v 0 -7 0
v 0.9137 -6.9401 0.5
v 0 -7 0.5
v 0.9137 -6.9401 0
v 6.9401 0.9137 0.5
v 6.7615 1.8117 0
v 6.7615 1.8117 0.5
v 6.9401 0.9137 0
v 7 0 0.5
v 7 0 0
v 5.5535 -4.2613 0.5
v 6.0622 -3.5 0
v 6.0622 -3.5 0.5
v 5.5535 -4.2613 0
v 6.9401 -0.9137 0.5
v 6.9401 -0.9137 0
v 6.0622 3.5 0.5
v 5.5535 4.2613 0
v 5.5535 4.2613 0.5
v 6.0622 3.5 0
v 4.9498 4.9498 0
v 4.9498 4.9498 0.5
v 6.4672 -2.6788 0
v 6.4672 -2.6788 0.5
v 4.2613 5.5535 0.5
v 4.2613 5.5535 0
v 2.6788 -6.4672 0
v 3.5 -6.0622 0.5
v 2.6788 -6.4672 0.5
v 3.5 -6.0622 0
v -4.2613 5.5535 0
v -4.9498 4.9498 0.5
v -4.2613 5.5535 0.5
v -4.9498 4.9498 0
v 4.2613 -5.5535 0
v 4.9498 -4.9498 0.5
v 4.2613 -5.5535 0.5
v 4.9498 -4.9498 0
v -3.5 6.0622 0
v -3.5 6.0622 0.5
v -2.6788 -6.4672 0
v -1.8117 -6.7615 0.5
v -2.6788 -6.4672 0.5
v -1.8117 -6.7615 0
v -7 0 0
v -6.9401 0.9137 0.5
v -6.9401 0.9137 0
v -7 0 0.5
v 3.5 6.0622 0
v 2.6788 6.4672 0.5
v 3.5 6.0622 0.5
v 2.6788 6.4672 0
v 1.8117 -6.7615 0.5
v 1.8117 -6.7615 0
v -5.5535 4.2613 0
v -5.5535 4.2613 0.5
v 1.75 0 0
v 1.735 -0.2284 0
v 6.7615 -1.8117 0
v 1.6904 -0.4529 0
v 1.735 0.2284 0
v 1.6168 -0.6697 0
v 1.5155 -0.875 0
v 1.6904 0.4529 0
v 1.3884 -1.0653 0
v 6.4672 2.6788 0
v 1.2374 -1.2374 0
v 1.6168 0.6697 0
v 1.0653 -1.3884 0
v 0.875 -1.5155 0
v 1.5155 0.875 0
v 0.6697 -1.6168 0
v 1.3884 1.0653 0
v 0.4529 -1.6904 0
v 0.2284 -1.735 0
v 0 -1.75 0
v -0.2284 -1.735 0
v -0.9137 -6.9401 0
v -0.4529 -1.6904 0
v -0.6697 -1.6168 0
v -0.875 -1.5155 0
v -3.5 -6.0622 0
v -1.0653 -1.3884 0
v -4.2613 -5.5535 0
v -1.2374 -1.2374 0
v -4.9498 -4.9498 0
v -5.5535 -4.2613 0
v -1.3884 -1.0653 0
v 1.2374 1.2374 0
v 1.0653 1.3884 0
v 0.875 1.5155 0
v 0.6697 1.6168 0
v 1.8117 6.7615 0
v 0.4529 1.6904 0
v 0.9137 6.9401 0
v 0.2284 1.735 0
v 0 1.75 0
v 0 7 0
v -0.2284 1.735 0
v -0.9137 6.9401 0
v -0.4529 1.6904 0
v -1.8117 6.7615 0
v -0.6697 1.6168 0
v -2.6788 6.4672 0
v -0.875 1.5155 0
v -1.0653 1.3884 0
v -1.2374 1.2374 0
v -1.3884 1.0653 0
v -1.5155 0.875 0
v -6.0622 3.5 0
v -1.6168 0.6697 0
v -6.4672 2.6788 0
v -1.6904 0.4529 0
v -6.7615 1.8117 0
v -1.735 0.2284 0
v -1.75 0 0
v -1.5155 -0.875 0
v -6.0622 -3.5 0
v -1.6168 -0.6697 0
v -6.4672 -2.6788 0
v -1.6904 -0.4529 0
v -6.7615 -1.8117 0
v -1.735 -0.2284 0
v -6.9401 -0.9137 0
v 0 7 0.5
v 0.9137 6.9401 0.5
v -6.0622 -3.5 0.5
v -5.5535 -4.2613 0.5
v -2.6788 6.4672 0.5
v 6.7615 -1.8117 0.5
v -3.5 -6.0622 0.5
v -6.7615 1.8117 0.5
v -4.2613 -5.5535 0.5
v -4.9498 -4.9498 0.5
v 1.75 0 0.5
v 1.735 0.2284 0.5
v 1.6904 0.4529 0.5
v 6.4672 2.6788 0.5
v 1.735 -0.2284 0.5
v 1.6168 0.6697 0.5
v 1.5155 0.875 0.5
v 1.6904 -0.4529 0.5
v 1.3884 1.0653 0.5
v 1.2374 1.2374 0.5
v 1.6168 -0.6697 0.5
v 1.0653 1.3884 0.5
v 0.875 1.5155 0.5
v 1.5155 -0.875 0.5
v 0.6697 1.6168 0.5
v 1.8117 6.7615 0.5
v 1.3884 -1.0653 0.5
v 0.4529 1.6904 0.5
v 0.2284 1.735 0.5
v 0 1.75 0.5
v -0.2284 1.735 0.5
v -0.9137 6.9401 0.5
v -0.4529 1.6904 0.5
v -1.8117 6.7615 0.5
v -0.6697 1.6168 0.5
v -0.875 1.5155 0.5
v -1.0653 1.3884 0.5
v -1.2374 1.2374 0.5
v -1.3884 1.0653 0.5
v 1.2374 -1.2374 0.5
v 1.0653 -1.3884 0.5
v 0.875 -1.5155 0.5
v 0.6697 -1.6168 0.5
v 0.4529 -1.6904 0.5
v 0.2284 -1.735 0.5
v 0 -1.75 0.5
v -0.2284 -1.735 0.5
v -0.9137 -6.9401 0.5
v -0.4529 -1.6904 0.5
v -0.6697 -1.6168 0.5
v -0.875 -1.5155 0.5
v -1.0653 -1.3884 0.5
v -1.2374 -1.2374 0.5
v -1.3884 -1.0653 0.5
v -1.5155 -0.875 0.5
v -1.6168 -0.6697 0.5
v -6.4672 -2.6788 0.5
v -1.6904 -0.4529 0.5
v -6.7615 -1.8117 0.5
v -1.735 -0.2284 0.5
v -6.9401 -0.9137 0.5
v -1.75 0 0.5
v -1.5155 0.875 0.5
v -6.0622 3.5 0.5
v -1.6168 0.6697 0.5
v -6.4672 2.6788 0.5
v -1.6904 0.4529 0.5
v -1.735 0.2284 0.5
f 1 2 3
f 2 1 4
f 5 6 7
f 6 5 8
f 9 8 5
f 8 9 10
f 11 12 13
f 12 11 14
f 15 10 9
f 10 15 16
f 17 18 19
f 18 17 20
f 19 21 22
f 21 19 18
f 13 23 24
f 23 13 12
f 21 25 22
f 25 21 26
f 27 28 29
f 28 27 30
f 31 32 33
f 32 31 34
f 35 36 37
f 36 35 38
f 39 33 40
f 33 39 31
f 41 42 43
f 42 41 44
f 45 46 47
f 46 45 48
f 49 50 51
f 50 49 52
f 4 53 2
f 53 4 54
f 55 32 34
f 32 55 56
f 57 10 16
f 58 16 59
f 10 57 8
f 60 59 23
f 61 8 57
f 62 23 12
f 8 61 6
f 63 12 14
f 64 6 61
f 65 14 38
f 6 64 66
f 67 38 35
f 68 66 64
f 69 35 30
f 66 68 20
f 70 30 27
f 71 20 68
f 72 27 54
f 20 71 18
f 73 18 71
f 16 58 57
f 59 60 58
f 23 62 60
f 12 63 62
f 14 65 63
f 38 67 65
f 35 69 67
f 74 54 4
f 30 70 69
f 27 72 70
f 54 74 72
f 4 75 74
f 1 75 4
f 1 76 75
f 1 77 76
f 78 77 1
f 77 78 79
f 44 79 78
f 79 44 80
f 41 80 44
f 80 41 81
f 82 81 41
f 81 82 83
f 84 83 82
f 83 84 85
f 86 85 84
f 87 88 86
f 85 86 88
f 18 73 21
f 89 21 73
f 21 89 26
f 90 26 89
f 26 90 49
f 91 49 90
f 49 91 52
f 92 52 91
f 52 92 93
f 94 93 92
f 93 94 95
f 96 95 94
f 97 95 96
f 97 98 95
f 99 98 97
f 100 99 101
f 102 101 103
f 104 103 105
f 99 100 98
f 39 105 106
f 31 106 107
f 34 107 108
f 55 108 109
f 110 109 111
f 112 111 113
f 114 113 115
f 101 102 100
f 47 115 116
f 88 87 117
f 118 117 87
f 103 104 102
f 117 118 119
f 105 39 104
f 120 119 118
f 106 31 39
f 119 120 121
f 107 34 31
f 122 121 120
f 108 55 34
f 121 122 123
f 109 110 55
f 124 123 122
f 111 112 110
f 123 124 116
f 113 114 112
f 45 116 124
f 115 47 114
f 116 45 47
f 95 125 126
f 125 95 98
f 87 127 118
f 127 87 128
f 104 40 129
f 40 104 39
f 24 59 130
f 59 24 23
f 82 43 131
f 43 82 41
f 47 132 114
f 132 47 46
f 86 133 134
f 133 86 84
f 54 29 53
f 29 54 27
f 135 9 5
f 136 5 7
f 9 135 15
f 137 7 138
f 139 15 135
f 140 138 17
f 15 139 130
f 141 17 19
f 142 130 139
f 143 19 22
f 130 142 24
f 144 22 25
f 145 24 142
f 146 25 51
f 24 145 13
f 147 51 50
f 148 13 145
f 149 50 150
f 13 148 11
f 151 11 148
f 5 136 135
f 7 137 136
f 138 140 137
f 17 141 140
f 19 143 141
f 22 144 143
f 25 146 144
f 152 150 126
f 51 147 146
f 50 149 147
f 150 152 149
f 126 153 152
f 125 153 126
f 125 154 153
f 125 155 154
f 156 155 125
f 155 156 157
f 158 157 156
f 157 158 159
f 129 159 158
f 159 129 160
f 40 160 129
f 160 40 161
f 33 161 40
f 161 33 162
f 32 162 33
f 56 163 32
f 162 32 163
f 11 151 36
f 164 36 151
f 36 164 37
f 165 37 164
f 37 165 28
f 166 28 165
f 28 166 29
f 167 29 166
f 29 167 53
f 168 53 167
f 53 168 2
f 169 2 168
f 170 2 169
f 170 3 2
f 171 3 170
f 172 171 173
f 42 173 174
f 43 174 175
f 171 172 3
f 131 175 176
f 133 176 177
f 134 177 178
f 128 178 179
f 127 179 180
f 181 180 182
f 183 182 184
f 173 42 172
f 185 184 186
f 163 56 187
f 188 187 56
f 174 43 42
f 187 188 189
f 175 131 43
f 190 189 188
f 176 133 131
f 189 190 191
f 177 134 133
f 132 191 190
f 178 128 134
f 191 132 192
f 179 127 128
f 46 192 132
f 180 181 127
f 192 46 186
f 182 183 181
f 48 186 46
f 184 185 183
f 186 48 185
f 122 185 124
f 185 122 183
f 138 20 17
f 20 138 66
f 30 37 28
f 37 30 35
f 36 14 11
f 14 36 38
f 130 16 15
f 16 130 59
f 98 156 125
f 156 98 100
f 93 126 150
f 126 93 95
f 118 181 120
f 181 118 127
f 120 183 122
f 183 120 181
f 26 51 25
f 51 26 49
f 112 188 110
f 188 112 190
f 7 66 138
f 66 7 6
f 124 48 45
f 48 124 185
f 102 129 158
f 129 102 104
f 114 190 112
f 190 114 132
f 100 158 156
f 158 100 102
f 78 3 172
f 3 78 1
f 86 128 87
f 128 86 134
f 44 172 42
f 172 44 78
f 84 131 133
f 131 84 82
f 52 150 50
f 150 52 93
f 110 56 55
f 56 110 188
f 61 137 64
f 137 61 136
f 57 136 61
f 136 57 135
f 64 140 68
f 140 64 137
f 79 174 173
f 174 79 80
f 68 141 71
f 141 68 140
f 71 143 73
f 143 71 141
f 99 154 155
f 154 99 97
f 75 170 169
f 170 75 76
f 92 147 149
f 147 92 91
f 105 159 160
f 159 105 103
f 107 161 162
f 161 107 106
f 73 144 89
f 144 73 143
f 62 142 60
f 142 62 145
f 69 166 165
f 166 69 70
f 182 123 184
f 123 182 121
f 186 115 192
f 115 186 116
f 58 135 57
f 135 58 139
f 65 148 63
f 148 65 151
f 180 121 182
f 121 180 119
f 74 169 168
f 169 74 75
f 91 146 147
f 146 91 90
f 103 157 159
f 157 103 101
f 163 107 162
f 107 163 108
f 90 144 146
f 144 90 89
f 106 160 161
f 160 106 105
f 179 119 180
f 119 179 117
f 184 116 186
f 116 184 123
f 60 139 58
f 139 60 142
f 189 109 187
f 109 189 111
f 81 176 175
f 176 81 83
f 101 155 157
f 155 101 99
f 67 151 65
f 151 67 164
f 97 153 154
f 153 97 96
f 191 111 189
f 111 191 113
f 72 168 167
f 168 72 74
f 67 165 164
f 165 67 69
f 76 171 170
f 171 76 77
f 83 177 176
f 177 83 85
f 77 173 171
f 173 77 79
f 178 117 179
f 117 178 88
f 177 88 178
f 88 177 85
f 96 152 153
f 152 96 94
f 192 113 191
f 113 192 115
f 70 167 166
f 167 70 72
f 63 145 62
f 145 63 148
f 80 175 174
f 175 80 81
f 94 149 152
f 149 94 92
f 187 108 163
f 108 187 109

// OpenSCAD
// file: parameters.scad
// =============================================================================
// Gen-BD — nightly 2026-10-03 (physics_scorer, honest magpylib watts)
// Clocking 0 deg (magnets N facing S) + D-flat keyed bore + index notch + flip-symmetric braces/bolts.
// Windable 2-piece bobbin; turns = physics_scorer turns_fit; copper only between flanges.
// former_web = 3.60 mm (taller copper vs Gen-BA 2.46) — gap grows with web (honest Bz tradeoff).
// Steel back-iron: two buyable mild-steel discs behind each rotor (score with --back-iron).
// =============================================================================
topology            = "dual_rotor";

// --- Wire / winding (physics_scorer winding-fit) -------------------------------
wire_awg            = 26;
wire_od             = 0.45;     // insulated OD mm (bare 0.405)
fill_realistic      = 0.60;     // insulated-wire area / window, hand-wound layered
turns               = 76;       // = physics_scorer turns_fit (do NOT raise)
coil_former_type    = "bobbin";
coil_core_inset     = 5.60;     // radial copper build: hub = copper boundary inset by this
wind_build_axial    = 0.0;      // nothing proud of the flanges
wind_build_radial   = 0.0;

// --- Bobbin (base + lid) ---------------------------------------------------------
coil_id_r           = 28.00;    // copper boundary sector (over the magnet track)
coil_od_r           = 50.00;
span_deg            = 22.42;    // = pitch - 2*asin((wall+0.85)/coil_id_r) -> >=1.2 mm stator web
former_web          = 3.60;     // copper height between flanges
flange_t            = 0.60;
wall                = 1.00;     // flange lip beyond copper
former_bare_h       = former_web + 2 * flange_t;
coil_envelope_h     = former_bare_h + 2 * wind_build_axial;
tab_w               = 7.0;
tab_len             = 7.0;
tab_h               = former_bare_h / 2;
pin_d               = 1.9;      // 1.75 mm filament locating pin
coil_mount_r        = coil_od_r + 0.2 + 4.0;
lead_y              = 1.6;
lead_slot_w         = 0.9;
lead_groove_d       = 0.6;

// --- Gap -------------------------------------------------------------------------
run_clear           = 0.50;     // rotor face -> flange
gap_spacer_h        = run_clear + wind_build_axial;
m2m                 = coil_envelope_h + 2 * run_clear;

// --- Stator ----------------------------------------------------------------------
coil_stations       = 12;
bay_clear           = 0.25;
stator_thick        = former_bare_h;                        // bobbins flush both faces
stator_od           = 162.0;
shaft_clear_stator  = 14.0;     // stator is static; shaft only

// --- Rotor(s) --------------------------------------------------------------------
magnet_Br           = 1.43;     // N52
halbach_magnetisation = "diametric"; // O5x5 assist magnets MUST be DIAMETRICALLY magnetised (tangential)
rotor_b_same_axis   = true;     // same-index magnets share one axis: N faces S across the gap
large_pocket_d      = 20.3;
small_pocket_d      = 5.3;
pocket_h            = 5.2;
large_n             = 8;
R_large             = 40.0;
R_small_inner       = 24.0;
R_small_mid         = 40.0;
R_small_outer       = 56.0;
carrier_od          = 160.0;
carrier_thick       = 7.5;
hub_h               = 10.0;
hub_od              = 30.0;
rotor_b_offset_deg  = 0.0;      // CLOCKING: magnets directly opposite
shaft_key           = "dflat";
dflat_depth         = 0.5;      // 8 mm shaft with 0.5 mm flat (7.5 across flat)
index_notch_d       = 3.0;

// --- Modular MAX interface (Gen-E family) -----------------------------------------
shaft_bore          = 8.35;
dflat_x             = 4.0 - dflat_depth + (shaft_bore - 8.0) / 2;
bearing_d           = 21.85;
bearing_h           = 7.2;
m3_clear            = 3.5;
bolt_r_inner        = 30.0;
bolt_n_inner        = 4;
bolt_inner_angles   = [22.5, -22.5, 157.5, 202.5];  // between poles, flip-symmetric
flange_bolt_r       = 72.0;
flange_bolt_n       = 6;
brace_r             = 68.0;
brace_d             = 4.3;
brace_n             = 4;
brace_angles        = [45, 135, 225, 315];          // flip-symmetric

spacer_pad_od       = 14.0;
spacer_pad_id       = m3_clear;
endbell_od          = 162.0;
endbell_thick       = 8.0;
endbell_shaft_clear = 10.0;
plate_max_mm        = 410;

$fn = 64;
// main file
// Gen-BD — assembly gap shim, h = run_clear (rotor face -> flange); copper is inside the flanges
include <parameters.scad>;
$fn = 48;
difference() {
    cylinder(d=spacer_pad_od, h=gap_spacer_h);
    translate([0, 0, -0.1]) cylinder(d=spacer_pad_id, h=gap_spacer_h + 0.2);
}
